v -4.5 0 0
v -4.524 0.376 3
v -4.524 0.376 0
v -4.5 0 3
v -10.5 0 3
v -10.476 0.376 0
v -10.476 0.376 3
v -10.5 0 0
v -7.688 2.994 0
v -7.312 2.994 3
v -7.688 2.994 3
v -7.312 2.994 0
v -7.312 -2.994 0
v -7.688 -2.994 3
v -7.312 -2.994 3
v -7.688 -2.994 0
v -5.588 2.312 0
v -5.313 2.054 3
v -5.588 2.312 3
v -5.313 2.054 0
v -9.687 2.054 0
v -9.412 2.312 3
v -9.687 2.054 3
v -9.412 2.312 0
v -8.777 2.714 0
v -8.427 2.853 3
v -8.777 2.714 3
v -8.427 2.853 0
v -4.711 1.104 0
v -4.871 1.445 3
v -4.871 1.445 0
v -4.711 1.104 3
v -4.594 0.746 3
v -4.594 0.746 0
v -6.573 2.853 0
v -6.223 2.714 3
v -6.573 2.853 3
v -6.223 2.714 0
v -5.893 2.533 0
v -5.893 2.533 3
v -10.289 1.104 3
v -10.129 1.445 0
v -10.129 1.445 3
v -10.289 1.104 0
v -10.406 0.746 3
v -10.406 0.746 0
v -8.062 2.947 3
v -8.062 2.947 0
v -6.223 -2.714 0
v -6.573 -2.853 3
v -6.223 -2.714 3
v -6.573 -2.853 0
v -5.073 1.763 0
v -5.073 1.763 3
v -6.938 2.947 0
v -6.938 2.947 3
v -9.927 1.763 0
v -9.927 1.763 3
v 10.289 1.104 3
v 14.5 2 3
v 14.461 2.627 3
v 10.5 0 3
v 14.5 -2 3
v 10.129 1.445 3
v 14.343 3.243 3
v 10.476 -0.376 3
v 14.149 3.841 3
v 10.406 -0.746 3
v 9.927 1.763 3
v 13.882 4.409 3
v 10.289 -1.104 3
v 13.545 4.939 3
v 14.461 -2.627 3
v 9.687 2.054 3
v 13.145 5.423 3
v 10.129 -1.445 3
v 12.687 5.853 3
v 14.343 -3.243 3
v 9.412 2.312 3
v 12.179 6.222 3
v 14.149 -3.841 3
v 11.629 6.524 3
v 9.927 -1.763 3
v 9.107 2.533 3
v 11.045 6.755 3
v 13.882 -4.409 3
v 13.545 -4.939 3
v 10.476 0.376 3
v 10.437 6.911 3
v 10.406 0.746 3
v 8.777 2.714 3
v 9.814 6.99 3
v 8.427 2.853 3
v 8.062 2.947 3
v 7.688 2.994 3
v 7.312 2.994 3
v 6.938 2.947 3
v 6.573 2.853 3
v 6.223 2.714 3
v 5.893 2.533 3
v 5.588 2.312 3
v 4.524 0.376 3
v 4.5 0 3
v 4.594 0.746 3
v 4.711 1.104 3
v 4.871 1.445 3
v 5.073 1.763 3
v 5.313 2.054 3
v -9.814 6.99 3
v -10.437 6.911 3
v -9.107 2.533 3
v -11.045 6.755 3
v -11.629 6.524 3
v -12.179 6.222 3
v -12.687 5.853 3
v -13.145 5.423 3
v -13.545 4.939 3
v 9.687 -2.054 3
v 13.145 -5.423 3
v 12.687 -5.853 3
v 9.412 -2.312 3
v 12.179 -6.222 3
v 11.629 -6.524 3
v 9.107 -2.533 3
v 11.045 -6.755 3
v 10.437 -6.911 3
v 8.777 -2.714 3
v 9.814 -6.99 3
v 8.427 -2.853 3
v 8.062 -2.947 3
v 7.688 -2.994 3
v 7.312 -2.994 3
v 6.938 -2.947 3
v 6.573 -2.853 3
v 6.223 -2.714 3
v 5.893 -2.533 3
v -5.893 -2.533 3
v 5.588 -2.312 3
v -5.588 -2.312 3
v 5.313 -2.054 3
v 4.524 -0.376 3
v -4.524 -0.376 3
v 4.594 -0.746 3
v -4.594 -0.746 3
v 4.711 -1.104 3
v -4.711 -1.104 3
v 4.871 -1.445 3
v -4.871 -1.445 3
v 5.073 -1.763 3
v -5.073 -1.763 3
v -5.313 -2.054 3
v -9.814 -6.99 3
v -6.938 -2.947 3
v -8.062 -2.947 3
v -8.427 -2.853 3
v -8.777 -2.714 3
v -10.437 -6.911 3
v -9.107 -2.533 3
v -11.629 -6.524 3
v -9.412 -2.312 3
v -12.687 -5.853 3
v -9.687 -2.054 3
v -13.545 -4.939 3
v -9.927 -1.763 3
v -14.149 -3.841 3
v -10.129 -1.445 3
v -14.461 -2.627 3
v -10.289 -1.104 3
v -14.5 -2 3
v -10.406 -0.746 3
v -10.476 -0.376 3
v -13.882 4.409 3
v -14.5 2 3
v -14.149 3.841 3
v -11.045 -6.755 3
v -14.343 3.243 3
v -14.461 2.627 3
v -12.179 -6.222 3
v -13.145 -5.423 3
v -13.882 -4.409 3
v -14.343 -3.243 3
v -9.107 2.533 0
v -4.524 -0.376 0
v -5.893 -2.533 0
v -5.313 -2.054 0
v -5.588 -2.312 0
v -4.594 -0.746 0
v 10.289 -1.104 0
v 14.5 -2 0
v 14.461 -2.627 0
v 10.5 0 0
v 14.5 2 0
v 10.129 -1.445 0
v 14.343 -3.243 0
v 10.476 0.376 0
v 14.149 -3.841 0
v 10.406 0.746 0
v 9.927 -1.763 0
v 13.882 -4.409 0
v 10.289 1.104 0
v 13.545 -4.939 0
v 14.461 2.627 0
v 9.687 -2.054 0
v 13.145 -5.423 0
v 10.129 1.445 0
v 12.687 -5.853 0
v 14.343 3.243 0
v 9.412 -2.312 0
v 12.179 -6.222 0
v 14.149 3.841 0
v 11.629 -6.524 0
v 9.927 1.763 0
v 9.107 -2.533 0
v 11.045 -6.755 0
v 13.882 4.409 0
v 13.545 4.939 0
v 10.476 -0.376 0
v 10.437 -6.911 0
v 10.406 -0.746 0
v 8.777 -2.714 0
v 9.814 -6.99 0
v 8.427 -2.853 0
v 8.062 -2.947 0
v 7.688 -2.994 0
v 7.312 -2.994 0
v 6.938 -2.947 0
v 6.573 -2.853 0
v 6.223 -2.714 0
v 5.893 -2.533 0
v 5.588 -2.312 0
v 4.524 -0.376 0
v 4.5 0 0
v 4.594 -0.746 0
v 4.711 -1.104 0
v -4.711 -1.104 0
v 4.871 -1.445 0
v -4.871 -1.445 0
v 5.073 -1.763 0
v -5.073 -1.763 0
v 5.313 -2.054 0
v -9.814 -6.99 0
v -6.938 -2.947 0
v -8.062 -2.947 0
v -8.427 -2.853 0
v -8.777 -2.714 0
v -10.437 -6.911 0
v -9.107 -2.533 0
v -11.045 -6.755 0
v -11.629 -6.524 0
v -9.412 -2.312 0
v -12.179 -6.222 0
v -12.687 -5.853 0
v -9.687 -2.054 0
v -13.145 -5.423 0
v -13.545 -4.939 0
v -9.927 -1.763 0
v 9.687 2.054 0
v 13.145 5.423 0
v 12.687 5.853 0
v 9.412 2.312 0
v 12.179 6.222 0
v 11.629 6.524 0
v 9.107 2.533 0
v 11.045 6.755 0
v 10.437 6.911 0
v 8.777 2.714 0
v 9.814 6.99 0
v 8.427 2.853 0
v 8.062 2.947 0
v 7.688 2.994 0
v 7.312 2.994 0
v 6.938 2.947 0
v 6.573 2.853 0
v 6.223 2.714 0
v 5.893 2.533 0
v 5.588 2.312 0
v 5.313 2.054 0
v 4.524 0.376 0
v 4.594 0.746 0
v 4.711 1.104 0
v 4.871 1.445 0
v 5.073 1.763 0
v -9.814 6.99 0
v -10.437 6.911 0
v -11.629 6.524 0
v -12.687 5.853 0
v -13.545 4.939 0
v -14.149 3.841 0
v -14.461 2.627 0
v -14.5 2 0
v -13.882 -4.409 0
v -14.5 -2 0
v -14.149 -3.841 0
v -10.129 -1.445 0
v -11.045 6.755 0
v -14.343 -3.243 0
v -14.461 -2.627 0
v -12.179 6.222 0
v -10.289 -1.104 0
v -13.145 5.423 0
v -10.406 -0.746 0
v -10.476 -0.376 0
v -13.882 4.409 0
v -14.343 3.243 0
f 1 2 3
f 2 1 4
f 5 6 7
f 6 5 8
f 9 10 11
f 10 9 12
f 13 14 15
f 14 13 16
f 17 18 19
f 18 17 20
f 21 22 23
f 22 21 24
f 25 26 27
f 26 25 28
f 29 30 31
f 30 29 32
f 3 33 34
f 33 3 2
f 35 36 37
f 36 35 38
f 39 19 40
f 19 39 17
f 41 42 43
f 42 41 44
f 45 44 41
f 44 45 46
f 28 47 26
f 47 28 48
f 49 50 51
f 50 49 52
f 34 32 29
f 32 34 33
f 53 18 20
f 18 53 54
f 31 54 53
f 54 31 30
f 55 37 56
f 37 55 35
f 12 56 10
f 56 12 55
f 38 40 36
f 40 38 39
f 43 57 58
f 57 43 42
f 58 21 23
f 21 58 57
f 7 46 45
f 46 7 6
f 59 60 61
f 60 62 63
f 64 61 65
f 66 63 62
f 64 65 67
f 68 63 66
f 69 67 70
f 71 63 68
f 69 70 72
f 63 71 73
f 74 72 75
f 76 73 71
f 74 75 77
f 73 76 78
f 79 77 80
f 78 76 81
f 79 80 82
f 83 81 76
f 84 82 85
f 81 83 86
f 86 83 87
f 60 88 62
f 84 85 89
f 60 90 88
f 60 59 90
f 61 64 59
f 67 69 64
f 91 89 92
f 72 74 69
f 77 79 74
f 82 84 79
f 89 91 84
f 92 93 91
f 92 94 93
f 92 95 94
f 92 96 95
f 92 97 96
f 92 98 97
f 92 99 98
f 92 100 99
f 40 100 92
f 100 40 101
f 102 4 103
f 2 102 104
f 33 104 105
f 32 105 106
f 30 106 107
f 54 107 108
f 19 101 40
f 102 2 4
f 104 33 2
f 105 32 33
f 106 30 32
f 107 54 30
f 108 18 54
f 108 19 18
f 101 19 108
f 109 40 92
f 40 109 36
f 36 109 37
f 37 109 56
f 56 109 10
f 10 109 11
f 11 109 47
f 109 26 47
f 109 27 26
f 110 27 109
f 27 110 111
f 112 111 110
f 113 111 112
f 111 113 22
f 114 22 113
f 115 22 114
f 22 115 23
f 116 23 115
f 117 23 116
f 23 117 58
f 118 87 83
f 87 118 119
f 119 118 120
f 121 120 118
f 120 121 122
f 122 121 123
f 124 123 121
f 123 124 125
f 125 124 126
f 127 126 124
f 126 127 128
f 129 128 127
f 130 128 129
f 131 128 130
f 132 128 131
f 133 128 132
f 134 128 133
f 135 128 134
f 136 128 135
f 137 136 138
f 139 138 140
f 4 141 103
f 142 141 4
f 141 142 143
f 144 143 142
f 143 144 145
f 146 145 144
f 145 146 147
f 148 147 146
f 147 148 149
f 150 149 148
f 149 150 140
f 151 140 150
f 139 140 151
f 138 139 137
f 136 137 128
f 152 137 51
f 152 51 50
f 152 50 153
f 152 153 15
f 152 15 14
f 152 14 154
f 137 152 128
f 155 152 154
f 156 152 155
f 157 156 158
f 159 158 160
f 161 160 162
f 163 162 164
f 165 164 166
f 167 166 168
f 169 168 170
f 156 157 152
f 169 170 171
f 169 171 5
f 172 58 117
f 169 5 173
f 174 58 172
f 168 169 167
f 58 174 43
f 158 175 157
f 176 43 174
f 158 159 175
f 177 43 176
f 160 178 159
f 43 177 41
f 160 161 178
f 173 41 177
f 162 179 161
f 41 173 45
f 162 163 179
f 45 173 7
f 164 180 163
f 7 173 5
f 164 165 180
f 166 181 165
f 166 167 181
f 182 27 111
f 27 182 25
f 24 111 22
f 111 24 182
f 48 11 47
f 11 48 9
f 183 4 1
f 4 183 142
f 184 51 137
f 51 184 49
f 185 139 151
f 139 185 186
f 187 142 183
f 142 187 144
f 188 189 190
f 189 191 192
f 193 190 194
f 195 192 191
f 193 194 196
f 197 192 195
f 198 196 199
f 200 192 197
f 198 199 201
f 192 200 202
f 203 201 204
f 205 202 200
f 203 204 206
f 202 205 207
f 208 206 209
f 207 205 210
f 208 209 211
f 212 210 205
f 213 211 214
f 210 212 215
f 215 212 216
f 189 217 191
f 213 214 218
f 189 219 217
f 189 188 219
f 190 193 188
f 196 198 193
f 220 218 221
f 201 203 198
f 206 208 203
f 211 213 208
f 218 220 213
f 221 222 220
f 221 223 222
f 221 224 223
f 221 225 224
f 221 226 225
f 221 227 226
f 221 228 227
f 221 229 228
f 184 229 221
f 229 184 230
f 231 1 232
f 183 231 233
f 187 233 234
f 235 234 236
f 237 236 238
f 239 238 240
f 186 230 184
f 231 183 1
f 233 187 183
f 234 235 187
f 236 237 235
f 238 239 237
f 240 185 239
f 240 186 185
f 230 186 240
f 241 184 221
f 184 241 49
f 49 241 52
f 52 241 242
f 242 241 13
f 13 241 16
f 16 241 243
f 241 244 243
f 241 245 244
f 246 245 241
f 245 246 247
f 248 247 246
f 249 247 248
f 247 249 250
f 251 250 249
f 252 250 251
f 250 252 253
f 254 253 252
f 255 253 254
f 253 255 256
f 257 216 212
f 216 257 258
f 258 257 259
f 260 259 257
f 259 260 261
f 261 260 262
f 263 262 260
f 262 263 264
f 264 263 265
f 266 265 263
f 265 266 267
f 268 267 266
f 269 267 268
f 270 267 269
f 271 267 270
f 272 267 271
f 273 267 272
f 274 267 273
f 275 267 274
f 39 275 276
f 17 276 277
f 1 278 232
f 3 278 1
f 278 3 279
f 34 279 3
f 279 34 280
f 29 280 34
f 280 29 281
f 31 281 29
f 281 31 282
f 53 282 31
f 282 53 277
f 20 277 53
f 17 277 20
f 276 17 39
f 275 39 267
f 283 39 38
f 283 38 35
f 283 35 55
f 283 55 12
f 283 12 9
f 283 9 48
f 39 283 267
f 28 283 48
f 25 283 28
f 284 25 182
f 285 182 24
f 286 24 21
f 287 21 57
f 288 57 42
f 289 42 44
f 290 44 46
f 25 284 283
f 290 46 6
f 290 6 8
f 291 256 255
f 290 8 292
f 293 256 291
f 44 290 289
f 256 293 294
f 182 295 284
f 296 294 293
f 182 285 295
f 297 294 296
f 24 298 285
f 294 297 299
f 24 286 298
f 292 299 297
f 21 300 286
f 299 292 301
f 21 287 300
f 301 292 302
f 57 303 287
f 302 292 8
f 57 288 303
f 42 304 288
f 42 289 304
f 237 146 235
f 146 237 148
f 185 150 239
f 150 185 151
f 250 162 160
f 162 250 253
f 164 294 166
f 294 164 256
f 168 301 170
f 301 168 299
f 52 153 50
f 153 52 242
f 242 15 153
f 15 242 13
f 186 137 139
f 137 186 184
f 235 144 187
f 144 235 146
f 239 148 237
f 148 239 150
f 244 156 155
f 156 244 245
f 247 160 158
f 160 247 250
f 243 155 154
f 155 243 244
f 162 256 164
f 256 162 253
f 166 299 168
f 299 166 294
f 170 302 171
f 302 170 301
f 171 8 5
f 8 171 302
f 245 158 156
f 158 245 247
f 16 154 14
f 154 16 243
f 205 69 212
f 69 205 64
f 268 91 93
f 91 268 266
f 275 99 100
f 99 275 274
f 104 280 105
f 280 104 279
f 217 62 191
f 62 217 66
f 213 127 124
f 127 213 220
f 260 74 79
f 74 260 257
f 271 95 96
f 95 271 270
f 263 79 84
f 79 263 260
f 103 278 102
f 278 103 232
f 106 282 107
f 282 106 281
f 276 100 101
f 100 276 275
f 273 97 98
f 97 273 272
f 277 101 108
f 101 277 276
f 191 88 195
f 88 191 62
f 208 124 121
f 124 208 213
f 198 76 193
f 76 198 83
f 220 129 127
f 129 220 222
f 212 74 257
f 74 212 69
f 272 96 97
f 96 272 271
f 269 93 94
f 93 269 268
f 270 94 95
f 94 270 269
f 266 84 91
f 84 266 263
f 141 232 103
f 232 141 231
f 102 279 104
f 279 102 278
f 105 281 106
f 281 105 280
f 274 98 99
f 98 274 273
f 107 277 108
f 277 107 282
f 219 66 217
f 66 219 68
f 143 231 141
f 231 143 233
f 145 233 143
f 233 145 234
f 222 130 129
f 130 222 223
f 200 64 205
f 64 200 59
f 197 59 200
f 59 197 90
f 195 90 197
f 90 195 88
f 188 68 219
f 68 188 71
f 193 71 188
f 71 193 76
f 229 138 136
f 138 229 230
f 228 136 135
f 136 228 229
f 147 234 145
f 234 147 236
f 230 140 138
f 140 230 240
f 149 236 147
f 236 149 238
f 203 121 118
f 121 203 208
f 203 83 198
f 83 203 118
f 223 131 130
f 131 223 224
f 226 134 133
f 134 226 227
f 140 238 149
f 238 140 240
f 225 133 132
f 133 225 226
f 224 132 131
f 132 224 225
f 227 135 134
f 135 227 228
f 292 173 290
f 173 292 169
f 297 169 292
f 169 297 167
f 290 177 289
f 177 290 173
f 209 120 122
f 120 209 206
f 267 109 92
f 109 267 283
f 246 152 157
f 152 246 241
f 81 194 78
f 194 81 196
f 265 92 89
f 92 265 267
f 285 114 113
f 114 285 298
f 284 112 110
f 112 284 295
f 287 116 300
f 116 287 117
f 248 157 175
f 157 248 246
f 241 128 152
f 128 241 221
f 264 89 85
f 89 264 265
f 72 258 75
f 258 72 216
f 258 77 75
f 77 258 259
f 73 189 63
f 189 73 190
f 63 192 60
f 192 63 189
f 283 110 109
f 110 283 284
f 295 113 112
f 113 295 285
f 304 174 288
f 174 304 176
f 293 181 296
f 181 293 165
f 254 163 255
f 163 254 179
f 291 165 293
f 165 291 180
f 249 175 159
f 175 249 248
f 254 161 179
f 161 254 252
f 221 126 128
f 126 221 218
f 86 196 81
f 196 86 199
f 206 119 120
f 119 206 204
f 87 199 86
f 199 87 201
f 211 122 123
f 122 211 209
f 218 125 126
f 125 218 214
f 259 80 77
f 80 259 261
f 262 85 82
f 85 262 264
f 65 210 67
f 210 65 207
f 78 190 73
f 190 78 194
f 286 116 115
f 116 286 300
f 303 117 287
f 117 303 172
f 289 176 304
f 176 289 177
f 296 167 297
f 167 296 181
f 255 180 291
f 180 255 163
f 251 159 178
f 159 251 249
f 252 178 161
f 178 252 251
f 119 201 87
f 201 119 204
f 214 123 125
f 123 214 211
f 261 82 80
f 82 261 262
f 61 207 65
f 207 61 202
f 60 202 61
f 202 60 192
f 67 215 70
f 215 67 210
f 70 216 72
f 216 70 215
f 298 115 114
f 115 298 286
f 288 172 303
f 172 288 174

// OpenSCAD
$fn = 50;


difference() {
	union() {
		hull() {
			translate(v = [-9.5000000000, 2.0000000000, 0]) {
				cylinder(h = 3, r = 5);
			}
			translate(v = [9.5000000000, 2.0000000000, 0]) {
				cylinder(h = 3, r = 5);
			}
			translate(v = [-9.5000000000, -2.0000000000, 0]) {
				cylinder(h = 3, r = 5);
			}
			translate(v = [9.5000000000, -2.0000000000, 0]) {
				cylinder(h = 3, r = 5);
			}
		}
	}
	union() {
		translate(v = [-7.5000000000, 0.0000000000, 0]) {
			translate(v = [0, 0, -100]) {
				cylinder(h = 200, r = 3.0000000000);
			}
		}
		translate(v = [7.5000000000, 0.0000000000, 0]) {
			translate(v = [0, 0, -100]) {
				cylinder(h = 200, r = 3.0000000000);
			}
		}
	}
}
